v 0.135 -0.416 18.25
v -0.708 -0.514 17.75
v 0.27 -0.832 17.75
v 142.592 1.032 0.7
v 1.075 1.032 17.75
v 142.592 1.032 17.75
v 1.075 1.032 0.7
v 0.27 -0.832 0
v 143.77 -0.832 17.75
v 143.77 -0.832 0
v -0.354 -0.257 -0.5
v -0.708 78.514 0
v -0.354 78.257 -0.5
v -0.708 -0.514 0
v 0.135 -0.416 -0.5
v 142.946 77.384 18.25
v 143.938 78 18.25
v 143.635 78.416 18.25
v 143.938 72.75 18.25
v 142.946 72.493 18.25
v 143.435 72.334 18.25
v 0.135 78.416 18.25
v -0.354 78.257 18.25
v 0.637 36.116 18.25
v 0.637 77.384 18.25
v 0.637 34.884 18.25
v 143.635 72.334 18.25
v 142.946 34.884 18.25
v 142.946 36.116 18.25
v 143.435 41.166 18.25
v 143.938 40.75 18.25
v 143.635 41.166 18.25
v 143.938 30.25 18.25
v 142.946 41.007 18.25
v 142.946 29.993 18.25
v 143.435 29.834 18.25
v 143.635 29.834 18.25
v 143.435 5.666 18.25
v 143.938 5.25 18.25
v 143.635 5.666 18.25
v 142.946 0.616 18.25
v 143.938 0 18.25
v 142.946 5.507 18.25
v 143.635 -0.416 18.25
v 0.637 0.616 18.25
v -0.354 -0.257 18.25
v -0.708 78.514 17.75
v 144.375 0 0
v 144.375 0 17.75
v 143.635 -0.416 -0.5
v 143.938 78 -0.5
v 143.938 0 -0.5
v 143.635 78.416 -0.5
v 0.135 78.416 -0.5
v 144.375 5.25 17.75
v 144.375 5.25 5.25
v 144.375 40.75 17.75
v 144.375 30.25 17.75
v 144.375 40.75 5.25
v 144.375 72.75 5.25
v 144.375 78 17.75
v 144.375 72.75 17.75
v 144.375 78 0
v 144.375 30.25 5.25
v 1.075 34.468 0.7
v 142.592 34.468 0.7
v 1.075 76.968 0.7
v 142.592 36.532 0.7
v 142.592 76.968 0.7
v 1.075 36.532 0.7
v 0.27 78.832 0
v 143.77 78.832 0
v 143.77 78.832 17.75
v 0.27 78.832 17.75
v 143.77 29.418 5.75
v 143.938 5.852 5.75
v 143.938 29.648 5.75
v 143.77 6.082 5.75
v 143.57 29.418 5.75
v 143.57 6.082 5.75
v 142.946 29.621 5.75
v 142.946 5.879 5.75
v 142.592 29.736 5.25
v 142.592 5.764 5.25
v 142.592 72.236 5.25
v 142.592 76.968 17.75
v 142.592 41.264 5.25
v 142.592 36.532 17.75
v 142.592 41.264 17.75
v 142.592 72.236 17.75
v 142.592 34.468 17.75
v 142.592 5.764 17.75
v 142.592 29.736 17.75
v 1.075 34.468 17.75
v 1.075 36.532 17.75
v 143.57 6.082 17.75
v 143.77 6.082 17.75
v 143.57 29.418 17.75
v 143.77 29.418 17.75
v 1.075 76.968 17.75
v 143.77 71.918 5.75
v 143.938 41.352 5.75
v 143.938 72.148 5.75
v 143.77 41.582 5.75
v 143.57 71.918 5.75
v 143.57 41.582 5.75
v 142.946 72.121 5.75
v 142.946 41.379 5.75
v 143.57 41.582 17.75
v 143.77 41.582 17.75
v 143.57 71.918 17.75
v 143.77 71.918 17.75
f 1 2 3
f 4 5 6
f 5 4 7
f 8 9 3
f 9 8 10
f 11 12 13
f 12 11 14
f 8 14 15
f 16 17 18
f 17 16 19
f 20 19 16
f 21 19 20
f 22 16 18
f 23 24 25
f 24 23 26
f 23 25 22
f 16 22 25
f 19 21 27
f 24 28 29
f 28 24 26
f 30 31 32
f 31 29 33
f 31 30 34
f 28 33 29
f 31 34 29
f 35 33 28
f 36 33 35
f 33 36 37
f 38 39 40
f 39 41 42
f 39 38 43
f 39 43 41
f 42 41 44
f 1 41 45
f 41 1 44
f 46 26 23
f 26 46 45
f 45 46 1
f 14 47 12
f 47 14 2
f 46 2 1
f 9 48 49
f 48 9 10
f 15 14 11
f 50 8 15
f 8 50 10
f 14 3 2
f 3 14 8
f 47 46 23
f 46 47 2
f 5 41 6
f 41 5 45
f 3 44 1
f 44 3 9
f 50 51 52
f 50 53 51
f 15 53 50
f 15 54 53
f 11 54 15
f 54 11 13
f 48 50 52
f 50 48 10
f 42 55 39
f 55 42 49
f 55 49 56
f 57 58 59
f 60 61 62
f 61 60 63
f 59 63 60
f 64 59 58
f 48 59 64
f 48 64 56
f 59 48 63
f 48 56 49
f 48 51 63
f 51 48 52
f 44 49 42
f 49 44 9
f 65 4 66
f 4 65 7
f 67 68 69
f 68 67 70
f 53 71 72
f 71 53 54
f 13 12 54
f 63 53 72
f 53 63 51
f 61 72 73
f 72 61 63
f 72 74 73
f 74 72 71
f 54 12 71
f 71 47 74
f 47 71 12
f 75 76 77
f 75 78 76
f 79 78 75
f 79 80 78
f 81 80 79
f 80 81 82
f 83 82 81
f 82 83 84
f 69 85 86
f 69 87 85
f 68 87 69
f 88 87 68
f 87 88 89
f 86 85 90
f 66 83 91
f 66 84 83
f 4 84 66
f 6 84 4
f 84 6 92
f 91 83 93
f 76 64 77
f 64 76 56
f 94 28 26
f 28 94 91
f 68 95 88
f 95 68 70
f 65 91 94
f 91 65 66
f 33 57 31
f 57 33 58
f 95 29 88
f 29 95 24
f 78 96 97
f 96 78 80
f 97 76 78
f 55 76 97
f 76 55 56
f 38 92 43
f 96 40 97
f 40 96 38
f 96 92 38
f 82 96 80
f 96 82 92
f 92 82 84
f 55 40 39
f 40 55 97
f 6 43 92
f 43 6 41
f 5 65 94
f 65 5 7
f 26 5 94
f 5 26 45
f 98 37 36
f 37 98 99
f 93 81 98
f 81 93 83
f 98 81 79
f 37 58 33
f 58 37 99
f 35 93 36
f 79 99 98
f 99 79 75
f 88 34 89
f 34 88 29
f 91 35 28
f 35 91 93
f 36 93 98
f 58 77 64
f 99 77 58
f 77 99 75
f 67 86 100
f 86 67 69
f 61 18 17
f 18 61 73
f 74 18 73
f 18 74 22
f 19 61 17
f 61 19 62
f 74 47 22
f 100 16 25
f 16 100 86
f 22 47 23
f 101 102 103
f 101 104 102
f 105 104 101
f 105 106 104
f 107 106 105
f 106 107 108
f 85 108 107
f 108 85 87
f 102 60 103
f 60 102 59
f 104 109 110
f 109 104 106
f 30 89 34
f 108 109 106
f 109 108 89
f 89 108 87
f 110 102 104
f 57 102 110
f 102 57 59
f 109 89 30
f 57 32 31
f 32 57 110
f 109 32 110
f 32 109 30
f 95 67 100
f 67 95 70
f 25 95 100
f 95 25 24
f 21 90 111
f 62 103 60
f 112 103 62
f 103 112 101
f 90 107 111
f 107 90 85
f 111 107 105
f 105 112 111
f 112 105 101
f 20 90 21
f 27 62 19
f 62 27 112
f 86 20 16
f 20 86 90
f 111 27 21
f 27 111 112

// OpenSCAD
ATOM = 0.001*200;
WALL = 1.75;
LENGTH = 140;
WIDTH1 = 32;
WIDTH2 = 39;
HEIGHT = 16;

TOTAL_WIDTH = WALL + WIDTH1 + WALL + WIDTH2 + WALL;
TOTAL_LENGTH = WALL + LENGTH + WALL;
TOTAL_HEIGHT = WALL + HEIGHT;

echo(TOTAL_WIDTH);

module compartment(length, width, height, hole=false) {
    difference() {
        cube([length + WALL*2, width + WALL*2, height+WALL]);
        
        translate([ATOM, ATOM, ATOM])
        cube([length + WALL*2-ATOM*2, width + WALL*2-ATOM*2, height + WALL+ATOM]);
        
        if (hole)
            translate([WALL, WALL*3, WALL*3])
            cube([length + WALL*2, width - WALL*4, height+WALL]);
    }
}

module skeleton() {
    compartment(LENGTH, WIDTH1, HEIGHT, true);
    
    translate([0, WIDTH1 + WALL*2, 0])
    compartment(LENGTH, WIDTH2, HEIGHT, true);
}

module all() {
    minkowski() {
        skeleton();
        scale([1, 1, 0.66])
        sphere(WALL/2);
    }
}

difference() {
    all();
    //cube(LENGTH/2, center=true);
}
